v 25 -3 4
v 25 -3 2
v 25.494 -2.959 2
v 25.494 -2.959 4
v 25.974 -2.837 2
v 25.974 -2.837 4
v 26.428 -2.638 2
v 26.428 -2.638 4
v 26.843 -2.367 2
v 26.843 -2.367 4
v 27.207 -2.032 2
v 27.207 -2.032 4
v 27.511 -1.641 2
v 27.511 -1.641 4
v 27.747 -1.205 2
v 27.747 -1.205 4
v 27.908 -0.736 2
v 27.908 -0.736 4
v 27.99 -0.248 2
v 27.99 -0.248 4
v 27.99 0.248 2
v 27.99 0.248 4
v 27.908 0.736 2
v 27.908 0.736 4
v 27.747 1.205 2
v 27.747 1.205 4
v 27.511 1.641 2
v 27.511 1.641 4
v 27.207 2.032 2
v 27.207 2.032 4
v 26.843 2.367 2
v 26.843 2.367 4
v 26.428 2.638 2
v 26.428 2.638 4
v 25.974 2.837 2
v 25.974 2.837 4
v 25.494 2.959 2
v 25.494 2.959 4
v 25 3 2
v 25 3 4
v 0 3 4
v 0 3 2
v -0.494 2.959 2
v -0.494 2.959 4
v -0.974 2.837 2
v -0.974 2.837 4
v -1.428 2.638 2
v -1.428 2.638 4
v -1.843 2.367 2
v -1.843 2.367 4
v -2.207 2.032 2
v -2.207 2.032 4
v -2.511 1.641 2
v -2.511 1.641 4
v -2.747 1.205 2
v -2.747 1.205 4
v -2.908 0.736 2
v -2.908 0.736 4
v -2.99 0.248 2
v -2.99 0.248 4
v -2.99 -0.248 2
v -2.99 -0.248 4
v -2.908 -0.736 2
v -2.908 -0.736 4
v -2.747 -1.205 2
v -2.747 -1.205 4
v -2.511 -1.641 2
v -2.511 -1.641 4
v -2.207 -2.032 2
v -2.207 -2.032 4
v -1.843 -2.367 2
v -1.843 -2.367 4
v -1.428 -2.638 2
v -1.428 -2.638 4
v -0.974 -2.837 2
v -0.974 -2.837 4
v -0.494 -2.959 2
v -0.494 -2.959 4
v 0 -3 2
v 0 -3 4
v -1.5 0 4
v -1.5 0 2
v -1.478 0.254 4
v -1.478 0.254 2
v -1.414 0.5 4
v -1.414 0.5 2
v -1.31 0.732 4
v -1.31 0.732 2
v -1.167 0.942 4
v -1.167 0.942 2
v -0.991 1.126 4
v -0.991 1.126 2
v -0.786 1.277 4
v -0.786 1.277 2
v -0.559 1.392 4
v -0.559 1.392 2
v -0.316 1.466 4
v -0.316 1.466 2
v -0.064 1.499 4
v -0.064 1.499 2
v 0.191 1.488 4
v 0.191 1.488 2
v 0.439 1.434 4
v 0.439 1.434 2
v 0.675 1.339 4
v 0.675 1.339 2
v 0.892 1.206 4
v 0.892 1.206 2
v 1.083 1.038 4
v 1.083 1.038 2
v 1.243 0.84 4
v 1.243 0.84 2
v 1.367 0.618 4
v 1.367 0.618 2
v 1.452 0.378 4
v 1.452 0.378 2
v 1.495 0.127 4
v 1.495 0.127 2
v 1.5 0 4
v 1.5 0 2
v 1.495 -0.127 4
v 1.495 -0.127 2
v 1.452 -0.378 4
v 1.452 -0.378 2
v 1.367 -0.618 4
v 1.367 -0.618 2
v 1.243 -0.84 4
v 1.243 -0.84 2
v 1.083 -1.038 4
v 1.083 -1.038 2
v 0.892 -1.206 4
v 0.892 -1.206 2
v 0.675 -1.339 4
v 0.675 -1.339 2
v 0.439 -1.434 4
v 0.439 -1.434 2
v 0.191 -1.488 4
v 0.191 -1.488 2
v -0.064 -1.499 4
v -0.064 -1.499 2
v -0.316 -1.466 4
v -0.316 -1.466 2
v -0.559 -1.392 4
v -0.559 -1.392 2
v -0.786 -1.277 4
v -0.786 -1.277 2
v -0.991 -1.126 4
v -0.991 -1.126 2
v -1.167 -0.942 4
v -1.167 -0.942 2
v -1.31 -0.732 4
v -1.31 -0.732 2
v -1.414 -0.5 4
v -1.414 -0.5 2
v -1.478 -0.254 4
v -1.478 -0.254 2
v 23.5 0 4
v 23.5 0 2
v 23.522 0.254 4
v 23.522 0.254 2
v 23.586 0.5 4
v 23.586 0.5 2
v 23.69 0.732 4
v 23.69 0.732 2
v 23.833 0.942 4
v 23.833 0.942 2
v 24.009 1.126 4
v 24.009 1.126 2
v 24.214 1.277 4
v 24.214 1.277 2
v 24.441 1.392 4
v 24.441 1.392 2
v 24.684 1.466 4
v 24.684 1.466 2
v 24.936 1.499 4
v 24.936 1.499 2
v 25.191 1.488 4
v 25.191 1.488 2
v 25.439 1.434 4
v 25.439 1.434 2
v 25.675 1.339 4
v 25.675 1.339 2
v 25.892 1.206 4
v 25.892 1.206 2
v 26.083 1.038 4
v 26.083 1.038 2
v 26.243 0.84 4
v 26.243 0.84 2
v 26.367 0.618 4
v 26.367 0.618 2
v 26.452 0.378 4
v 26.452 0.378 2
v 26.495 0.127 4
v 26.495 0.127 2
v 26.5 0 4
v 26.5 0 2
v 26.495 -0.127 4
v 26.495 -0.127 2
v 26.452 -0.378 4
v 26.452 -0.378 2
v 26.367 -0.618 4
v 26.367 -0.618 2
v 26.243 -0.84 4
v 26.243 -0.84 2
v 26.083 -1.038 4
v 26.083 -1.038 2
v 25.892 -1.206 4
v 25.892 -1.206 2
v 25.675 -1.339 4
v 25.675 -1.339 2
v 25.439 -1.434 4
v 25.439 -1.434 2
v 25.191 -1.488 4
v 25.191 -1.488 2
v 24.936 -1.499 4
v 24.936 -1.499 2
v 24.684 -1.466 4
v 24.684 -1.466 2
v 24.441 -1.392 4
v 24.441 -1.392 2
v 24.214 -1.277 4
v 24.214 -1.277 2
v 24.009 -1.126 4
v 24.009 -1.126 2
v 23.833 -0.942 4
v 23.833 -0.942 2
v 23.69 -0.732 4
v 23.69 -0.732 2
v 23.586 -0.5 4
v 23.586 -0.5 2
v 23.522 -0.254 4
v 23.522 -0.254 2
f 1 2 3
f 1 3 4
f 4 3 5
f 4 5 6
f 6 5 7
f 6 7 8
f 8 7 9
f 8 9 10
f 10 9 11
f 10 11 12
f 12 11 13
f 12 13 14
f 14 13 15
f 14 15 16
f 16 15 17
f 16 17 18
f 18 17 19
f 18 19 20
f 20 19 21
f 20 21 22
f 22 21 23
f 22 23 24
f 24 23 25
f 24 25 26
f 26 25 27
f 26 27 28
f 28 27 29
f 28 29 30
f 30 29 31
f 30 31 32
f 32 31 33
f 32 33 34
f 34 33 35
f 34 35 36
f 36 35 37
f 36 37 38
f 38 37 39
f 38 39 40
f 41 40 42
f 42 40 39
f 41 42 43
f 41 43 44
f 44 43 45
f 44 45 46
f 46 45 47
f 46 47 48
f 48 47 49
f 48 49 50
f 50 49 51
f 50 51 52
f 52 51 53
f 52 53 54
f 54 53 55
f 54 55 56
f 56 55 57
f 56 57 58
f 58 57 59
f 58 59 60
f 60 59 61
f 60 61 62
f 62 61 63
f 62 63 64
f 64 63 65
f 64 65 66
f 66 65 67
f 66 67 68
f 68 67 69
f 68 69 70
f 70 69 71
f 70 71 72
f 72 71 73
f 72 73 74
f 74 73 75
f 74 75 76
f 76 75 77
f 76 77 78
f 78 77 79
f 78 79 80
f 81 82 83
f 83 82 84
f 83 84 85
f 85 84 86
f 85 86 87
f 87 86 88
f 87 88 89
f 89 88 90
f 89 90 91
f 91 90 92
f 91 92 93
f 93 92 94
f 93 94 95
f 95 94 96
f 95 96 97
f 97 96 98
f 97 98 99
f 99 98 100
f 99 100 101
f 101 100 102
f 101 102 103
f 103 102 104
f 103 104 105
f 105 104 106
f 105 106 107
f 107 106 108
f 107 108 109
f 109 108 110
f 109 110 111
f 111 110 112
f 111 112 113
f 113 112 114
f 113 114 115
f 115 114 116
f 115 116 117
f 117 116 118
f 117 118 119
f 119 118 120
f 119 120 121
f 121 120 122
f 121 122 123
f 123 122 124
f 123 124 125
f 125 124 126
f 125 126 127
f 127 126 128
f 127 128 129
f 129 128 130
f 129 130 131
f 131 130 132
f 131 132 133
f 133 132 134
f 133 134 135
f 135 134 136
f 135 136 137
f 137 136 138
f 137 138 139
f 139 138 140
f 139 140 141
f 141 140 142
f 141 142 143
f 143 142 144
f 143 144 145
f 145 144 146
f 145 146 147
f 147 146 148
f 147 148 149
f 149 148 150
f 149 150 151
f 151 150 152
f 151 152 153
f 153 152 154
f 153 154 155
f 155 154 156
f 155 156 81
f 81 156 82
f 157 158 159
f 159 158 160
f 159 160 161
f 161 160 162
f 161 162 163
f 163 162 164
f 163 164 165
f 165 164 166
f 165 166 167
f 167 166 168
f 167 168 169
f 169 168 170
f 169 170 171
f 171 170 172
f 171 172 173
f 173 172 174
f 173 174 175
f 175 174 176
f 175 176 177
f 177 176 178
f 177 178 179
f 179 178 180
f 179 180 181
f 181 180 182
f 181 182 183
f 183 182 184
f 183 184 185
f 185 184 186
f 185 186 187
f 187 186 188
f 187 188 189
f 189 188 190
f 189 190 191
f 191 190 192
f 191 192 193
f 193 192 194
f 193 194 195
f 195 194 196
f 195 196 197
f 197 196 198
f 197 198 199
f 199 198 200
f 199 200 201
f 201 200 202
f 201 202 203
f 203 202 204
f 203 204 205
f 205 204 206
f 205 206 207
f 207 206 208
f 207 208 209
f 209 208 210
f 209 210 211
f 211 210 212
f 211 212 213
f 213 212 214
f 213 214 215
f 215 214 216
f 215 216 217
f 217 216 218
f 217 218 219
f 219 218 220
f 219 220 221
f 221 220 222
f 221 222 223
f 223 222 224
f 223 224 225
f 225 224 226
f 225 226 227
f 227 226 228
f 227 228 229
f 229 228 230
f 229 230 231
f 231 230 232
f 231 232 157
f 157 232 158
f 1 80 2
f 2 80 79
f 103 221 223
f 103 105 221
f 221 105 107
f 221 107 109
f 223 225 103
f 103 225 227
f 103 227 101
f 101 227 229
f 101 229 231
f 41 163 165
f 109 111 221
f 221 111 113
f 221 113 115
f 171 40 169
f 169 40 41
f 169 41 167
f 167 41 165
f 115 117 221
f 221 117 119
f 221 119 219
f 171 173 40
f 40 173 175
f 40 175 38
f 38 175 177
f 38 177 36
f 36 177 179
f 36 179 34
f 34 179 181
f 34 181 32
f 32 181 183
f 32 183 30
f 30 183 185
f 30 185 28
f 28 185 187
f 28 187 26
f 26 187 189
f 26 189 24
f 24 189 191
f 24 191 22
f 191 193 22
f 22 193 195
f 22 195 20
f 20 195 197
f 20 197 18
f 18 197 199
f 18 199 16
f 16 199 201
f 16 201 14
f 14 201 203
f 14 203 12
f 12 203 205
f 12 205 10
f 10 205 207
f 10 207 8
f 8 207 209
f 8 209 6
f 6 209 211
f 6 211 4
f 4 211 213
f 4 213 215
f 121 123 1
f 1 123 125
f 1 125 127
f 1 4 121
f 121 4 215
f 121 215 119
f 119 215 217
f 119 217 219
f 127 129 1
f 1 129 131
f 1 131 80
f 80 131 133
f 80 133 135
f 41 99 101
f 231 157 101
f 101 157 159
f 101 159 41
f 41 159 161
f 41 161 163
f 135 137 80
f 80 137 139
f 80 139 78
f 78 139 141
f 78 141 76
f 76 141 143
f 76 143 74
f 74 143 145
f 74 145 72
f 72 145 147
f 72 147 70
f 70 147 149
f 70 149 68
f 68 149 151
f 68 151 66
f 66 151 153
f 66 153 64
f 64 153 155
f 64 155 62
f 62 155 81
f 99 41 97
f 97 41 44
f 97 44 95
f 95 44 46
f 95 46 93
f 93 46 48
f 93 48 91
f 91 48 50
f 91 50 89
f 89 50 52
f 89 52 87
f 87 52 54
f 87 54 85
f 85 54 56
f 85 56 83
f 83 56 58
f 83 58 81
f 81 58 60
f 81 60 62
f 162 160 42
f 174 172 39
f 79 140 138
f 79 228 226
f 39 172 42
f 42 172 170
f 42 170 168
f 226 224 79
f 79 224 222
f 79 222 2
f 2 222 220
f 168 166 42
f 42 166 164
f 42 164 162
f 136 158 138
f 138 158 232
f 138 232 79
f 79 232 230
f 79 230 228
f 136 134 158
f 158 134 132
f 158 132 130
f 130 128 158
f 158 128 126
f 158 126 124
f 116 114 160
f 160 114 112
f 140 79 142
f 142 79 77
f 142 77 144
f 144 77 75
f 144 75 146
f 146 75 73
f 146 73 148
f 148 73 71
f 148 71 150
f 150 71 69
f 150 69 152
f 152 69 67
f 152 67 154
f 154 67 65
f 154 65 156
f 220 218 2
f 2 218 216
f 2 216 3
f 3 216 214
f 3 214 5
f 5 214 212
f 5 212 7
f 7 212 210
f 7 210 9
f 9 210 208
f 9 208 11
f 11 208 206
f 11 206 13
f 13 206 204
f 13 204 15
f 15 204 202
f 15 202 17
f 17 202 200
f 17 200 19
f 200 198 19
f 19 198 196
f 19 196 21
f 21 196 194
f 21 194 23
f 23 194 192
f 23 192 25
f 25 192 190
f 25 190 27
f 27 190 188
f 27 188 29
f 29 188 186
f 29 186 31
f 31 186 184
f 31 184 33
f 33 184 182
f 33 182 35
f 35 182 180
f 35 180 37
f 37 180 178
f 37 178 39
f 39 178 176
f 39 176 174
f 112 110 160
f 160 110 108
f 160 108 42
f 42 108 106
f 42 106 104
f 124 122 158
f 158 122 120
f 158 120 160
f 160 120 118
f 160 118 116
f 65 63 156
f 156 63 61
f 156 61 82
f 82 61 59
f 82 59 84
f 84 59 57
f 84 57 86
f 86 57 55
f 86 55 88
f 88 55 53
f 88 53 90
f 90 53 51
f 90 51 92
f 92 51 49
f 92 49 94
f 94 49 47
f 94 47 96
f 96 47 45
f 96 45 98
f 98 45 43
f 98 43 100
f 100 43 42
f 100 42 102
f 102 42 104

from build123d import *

# Parameters (mm, degrees)
ESQUISSE1_R             = 1.5
BOSS_EXTRU_1_DEPTH      = 4
ESQUISSE1_4_R           = 1.5
ENL_V_MAT_EXTRU_1_DEPTH = 2


with BuildPart() as part:
    # Esquisse1 → Boss.-Extru.1 (new body)
    with BuildSketch(Plane.XY):
        with BuildLine():
            Line((25, 3), (0, 3))
            ThreePointArc((0, 3), (-3, 0), (0, -3))
            Line((0, -3), (25, -3))
            ThreePointArc((25, -3), (28, 0), (25, 3))
        make_face()
        Circle(ESQUISSE1_R, mode=Mode.SUBTRACT)
        with Locations((25, 0)):
            Circle(ESQUISSE1_R, mode=Mode.SUBTRACT)
    extrude(amount=BOSS_EXTRU_1_DEPTH)

    # Esquisse1<4> → Enlèv. mat.-Extru.1 (cut)
    with BuildSketch(Plane.XY):
        with BuildLine():
            Line((25, 3), (0, 3))
            ThreePointArc((0, 3), (-3, 0), (0, -3))
            Line((0, -3), (25, -3))
            ThreePointArc((25, -3), (28, 0), (25, 3))
        make_face()
        Circle(ESQUISSE1_4_R, mode=Mode.SUBTRACT)
        with Locations((25, 0)):
            Circle(ESQUISSE1_4_R, mode=Mode.SUBTRACT)
    extrude(amount=ENL_V_MAT_EXTRU_1_DEPTH, mode=Mode.SUBTRACT)


solid = part.part
